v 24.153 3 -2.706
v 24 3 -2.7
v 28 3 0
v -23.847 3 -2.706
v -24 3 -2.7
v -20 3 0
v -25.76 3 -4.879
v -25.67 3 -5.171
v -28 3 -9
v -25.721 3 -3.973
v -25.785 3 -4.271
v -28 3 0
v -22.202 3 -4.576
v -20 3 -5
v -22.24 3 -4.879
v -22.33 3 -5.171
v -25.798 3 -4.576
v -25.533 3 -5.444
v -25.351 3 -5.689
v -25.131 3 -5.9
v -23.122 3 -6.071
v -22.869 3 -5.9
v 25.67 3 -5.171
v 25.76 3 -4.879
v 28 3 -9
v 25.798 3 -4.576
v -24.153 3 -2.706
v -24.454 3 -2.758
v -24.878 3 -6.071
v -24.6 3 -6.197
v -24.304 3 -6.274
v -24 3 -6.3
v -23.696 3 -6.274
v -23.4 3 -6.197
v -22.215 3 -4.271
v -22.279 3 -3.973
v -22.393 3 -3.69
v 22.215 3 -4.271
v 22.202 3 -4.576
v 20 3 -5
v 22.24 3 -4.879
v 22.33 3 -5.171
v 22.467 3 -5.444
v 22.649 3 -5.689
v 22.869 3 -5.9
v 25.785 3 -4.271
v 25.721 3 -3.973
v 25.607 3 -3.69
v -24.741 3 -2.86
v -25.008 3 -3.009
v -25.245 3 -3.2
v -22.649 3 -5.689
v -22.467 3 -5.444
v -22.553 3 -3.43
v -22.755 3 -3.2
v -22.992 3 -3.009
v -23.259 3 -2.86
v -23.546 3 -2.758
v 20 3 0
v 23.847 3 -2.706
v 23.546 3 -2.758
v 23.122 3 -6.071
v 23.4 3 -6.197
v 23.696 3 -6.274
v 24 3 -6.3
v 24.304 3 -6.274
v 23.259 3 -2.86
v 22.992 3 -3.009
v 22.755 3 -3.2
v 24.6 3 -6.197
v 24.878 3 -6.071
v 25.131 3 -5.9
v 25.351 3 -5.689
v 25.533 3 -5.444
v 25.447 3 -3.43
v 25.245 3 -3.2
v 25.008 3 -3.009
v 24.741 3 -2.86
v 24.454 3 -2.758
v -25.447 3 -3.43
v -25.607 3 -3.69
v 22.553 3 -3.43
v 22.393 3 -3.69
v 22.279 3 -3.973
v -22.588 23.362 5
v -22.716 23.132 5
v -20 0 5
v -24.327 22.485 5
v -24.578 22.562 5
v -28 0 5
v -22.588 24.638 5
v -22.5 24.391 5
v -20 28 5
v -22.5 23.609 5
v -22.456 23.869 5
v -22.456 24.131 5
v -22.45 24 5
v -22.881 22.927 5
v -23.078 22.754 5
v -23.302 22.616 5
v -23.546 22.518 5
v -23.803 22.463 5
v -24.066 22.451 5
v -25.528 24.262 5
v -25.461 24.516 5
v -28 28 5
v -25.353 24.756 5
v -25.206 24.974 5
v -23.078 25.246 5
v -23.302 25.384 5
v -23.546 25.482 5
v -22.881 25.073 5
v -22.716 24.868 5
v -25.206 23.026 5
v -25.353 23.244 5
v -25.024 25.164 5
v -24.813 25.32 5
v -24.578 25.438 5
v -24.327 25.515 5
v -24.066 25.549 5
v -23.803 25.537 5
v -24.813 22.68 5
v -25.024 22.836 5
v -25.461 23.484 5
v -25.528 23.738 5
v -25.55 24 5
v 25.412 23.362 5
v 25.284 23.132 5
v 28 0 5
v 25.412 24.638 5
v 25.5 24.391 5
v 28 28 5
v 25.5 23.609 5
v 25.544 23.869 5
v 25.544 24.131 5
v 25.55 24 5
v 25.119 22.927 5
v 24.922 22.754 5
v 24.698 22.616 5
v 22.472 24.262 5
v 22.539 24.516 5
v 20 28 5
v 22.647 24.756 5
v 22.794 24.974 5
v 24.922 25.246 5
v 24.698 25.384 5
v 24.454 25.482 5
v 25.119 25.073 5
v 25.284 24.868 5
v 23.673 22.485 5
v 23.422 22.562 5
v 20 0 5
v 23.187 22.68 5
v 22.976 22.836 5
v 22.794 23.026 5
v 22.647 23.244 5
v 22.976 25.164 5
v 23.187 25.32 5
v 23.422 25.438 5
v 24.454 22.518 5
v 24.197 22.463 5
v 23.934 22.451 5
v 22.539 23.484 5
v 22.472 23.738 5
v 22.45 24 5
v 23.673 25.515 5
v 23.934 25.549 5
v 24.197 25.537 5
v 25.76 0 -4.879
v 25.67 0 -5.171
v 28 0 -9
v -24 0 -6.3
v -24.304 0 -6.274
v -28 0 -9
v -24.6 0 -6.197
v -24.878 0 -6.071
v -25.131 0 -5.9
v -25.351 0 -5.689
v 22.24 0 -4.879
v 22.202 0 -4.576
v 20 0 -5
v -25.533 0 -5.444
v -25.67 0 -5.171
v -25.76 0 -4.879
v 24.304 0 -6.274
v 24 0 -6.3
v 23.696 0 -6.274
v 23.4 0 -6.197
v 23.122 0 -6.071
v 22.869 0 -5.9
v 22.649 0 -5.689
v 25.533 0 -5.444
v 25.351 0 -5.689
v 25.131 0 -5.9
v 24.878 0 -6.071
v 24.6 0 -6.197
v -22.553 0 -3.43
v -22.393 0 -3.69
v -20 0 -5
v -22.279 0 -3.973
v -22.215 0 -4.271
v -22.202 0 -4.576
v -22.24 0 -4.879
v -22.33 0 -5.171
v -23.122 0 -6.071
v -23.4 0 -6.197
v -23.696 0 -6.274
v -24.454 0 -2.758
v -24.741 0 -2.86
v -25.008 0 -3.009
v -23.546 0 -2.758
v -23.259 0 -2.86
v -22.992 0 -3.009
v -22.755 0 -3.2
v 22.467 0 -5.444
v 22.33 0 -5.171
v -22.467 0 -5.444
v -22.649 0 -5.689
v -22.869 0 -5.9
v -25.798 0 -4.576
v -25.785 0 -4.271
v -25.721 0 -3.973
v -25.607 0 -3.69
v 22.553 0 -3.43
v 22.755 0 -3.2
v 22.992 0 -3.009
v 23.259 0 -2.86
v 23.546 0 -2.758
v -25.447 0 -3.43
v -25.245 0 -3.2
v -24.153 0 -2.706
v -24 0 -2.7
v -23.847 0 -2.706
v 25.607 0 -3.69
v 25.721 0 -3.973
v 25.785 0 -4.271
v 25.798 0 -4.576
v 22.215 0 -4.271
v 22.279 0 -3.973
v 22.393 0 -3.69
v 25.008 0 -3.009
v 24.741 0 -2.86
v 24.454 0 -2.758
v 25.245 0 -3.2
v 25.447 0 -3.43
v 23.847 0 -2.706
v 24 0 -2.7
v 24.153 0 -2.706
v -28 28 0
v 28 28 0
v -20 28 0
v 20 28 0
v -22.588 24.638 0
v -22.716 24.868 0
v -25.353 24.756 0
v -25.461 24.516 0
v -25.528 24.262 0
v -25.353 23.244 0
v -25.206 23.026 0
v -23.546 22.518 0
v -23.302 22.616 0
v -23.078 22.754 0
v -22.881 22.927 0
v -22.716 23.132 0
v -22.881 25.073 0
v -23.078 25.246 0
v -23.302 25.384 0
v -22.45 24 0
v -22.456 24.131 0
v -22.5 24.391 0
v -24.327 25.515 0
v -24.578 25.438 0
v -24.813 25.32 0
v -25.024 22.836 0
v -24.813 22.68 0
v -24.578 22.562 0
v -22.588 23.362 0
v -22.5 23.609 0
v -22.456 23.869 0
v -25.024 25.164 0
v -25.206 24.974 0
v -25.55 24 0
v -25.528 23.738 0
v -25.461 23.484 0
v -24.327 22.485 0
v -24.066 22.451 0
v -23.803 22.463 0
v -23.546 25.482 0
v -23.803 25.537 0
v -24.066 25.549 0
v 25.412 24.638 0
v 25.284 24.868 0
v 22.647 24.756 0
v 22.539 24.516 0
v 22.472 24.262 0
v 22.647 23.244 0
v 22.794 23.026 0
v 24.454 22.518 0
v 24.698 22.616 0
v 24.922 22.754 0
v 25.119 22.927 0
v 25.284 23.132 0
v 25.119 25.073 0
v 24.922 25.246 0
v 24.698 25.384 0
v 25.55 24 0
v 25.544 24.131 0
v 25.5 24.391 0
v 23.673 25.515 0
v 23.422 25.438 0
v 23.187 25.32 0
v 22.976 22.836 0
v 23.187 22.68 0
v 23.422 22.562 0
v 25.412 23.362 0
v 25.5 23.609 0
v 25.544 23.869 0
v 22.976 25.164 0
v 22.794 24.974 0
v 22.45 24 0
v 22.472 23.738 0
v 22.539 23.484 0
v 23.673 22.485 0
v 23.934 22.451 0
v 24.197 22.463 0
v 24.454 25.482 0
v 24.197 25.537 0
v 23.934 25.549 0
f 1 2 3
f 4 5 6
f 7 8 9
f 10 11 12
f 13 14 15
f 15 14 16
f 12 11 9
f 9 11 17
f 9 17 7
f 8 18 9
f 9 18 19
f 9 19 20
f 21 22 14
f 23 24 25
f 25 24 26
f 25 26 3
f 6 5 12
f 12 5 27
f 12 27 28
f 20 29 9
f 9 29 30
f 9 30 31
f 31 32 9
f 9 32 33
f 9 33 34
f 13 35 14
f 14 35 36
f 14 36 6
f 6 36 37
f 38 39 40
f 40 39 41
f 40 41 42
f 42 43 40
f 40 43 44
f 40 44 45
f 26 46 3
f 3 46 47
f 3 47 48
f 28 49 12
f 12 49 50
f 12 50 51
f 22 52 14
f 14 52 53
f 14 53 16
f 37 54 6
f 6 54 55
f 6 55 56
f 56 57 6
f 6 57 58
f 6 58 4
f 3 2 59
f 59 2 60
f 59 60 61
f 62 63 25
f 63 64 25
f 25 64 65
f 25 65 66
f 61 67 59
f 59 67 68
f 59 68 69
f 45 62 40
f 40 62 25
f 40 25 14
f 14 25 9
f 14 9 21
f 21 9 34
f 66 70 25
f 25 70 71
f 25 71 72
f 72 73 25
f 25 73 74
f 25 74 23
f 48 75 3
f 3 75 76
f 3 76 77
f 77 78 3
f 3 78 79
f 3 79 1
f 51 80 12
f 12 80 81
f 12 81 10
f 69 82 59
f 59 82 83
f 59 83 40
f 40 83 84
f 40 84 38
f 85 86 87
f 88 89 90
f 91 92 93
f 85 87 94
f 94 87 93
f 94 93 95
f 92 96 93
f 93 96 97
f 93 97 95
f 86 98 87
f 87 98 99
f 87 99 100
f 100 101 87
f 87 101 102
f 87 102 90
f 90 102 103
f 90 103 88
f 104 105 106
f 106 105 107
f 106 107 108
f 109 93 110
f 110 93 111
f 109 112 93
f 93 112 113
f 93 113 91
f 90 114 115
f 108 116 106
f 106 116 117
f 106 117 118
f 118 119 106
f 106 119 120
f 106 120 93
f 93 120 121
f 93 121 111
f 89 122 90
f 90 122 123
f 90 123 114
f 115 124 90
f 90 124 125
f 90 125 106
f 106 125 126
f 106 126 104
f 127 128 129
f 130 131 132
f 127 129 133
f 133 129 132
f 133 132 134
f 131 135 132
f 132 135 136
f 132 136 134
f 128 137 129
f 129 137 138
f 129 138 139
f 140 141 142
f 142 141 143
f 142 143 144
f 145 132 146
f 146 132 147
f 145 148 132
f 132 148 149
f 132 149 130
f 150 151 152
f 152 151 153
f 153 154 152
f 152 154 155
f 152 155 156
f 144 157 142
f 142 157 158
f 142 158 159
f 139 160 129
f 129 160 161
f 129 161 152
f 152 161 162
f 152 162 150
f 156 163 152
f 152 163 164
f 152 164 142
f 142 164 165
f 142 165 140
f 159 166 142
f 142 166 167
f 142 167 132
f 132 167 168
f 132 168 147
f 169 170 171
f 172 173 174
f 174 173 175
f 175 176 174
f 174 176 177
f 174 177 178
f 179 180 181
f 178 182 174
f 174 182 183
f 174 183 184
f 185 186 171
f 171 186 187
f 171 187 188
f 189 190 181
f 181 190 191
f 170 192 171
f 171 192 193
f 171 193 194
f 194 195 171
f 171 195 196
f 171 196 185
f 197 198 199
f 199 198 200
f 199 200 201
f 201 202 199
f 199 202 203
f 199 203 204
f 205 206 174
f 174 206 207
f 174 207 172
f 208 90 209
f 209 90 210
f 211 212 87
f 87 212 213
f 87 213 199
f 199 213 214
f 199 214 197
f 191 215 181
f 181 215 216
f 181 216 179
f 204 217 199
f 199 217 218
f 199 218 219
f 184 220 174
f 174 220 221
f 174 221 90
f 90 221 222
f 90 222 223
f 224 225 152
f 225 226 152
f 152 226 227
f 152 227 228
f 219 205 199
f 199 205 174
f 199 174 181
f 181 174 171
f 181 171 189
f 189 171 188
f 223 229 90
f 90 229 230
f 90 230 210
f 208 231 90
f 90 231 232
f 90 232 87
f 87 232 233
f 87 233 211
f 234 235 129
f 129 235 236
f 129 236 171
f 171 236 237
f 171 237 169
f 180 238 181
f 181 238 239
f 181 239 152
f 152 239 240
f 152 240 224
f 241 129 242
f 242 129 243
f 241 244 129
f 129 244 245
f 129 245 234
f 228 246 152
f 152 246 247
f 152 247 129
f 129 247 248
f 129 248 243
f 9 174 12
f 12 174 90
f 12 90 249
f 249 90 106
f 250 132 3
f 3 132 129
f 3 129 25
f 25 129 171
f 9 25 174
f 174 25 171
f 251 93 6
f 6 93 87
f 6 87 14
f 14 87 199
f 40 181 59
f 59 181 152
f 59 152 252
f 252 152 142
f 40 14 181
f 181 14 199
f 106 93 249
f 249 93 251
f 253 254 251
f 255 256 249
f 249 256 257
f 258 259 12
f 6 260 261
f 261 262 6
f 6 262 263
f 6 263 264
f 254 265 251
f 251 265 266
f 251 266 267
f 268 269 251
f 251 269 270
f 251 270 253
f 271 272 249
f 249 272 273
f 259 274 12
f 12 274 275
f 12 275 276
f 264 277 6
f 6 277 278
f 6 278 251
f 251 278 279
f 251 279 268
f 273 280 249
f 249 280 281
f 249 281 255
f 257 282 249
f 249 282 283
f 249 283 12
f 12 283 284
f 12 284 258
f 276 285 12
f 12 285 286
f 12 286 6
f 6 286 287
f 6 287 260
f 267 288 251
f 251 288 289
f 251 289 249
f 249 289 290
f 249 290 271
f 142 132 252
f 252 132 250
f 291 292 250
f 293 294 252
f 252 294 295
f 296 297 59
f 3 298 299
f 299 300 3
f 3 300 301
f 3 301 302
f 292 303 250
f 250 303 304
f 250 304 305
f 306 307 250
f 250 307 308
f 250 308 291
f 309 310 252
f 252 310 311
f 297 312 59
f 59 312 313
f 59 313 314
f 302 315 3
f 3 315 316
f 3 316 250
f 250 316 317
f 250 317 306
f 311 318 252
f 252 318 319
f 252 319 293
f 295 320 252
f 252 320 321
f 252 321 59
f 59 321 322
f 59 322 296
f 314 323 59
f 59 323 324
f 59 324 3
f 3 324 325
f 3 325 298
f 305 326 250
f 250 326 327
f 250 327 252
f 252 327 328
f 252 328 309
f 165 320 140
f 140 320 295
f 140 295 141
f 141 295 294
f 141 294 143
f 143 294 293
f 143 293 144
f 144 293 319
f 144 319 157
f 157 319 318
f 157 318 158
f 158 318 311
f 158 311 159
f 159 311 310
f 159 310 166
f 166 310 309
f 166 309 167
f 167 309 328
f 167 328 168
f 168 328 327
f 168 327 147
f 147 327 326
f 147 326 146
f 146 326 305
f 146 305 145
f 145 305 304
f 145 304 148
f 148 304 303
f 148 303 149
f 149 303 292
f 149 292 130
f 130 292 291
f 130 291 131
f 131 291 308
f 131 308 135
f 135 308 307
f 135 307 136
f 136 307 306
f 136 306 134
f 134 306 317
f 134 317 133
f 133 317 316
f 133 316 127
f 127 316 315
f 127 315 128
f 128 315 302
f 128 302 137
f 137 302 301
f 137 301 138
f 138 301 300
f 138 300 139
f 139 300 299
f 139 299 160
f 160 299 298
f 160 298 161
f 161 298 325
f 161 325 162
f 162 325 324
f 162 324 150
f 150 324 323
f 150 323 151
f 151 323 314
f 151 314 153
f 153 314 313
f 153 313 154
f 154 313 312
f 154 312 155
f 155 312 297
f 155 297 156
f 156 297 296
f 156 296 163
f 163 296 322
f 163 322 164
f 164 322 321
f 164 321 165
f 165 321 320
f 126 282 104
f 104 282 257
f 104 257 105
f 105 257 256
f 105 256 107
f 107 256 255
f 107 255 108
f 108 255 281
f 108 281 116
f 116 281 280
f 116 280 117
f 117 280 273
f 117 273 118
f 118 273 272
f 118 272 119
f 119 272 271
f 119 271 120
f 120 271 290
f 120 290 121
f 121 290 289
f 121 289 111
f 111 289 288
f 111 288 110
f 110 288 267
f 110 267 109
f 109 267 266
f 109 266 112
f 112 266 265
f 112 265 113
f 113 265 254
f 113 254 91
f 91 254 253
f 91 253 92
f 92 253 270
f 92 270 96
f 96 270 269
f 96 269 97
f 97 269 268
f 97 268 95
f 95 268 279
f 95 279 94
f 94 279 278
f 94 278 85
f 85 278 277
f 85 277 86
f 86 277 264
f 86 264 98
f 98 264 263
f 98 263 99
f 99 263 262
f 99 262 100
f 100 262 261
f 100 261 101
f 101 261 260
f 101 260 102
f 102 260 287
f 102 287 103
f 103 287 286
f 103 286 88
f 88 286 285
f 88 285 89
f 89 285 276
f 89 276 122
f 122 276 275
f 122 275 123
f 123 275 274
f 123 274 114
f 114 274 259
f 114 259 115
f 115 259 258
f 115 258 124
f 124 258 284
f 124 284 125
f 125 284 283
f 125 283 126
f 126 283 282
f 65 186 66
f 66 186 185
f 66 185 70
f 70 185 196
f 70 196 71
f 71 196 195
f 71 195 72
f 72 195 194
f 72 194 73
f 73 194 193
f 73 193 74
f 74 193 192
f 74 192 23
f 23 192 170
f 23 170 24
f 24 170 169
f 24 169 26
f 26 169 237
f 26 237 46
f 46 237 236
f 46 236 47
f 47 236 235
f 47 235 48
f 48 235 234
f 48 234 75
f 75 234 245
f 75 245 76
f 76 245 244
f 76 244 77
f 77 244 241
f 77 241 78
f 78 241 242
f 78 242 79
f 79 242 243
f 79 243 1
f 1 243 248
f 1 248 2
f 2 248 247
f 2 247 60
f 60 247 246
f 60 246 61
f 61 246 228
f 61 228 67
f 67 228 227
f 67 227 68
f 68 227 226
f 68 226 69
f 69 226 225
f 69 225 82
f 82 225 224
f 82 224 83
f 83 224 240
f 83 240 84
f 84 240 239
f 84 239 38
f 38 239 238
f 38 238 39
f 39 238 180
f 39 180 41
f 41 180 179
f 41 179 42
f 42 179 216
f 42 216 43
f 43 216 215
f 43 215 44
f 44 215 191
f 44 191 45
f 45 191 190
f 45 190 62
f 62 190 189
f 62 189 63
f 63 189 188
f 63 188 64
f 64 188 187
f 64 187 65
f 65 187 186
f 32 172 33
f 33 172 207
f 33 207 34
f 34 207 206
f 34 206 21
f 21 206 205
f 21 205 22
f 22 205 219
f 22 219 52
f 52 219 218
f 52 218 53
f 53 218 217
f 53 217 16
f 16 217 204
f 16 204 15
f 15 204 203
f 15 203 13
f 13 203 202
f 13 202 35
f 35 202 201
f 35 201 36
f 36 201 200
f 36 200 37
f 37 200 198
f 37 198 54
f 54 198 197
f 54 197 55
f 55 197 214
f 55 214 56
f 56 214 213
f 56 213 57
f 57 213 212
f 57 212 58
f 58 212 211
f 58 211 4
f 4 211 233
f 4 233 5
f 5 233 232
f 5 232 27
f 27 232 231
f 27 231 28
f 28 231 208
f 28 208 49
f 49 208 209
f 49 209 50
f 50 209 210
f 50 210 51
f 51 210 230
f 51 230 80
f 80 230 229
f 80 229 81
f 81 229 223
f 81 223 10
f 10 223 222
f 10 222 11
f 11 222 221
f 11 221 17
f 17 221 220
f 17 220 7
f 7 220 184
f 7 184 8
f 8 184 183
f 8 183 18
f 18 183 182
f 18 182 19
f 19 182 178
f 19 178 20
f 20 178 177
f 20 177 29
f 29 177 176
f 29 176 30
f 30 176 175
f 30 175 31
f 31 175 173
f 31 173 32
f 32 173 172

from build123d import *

# Parameters (mm, degrees)
SKETCH_1_W               = 56
SKETCH_1_H               = 14
F_56X14_3_3MM_DEPTH      = 3
SKETCH_2_W               = 40
SKETCH_2_H               = 11
CUT_EXTRUDE_40_4_3_DEPTH = 3
SKETCH_3_W               = 8
SKETCH_3_H               = 25
F_5_M2_5X10_DEPTH        = 5
SKETCH_4_R               = 1.55
CUT_EXTRUDE_3_1_48_DEPTH = 5
SKETCH_5_R               = 1.8
CUT_EXTRUDE_993_DEPTH    = 3


with BuildPart() as part:
    # 草图1 → 相机小底脚56x14_厚3_单向3mm (new body)
    with BuildSketch(Plane(origin=(0, 0, 0), x_dir=(1, 0, 0), z_dir=(0, 1, 0))):
        with Locations((0, 2)):
            Rectangle(SKETCH_1_W, SKETCH_1_H)
    extrude(amount=F_56X14_3_3MM_DEPTH)

    # 草图2 → 底脚中央40宽镂空_只留后横梁4_贯穿底脚3 (cut)
    with BuildSketch(Plane(origin=(0, 0, 0), x_dir=(1, 0, 0), z_dir=(0, 1, 0))):
        with Locations((0, -0.5)):
            Rectangle(SKETCH_2_W, SKETCH_2_H)
    extrude(amount=CUT_EXTRUDE_40_4_3_DEPTH, mode=Mode.SUBTRACT)

    # 草图3 → 双耳支撑臂厚5_沿用M2.5x10尺寸链 (add)
    with BuildSketch(Plane.XY):
        with Locations((-24, 15.5)):
            Rectangle(SKETCH_3_W, SKETCH_3_H)
        with Locations((24, 15.5)):
            Rectangle(SKETCH_3_W, SKETCH_3_H)
    extrude(amount=F_5_M2_5X10_DEPTH)

    # 草图4 → 双耳原孔3.1_孔距48_圆孔不加大_贯穿 (cut)
    with BuildSketch(Plane.XY):
        with Locations((-24, 24)):
            Circle(SKETCH_4_R)
        with Locations((24, 24)):
            Circle(SKETCH_4_R)
    extrude(amount=CUT_EXTRUDE_3_1_48_DEPTH, mode=Mode.SUBTRACT)

    # 草图5 → Cut-Extrude 993 (cut)
    with BuildSketch(Plane(origin=(0, 0, 0), x_dir=(1, 0, 0), z_dir=(0, 1, 0))):
        with Locations(Location((-24, 4.5, 0), (0, 0, 270))):
            Circle(SKETCH_5_R)
        with Locations(Location((24, 4.5, 0), (0, 0, 270))):
            Circle(SKETCH_5_R)
    extrude(amount=CUT_EXTRUDE_993_DEPTH, mode=Mode.SUBTRACT)


solid = part.part
